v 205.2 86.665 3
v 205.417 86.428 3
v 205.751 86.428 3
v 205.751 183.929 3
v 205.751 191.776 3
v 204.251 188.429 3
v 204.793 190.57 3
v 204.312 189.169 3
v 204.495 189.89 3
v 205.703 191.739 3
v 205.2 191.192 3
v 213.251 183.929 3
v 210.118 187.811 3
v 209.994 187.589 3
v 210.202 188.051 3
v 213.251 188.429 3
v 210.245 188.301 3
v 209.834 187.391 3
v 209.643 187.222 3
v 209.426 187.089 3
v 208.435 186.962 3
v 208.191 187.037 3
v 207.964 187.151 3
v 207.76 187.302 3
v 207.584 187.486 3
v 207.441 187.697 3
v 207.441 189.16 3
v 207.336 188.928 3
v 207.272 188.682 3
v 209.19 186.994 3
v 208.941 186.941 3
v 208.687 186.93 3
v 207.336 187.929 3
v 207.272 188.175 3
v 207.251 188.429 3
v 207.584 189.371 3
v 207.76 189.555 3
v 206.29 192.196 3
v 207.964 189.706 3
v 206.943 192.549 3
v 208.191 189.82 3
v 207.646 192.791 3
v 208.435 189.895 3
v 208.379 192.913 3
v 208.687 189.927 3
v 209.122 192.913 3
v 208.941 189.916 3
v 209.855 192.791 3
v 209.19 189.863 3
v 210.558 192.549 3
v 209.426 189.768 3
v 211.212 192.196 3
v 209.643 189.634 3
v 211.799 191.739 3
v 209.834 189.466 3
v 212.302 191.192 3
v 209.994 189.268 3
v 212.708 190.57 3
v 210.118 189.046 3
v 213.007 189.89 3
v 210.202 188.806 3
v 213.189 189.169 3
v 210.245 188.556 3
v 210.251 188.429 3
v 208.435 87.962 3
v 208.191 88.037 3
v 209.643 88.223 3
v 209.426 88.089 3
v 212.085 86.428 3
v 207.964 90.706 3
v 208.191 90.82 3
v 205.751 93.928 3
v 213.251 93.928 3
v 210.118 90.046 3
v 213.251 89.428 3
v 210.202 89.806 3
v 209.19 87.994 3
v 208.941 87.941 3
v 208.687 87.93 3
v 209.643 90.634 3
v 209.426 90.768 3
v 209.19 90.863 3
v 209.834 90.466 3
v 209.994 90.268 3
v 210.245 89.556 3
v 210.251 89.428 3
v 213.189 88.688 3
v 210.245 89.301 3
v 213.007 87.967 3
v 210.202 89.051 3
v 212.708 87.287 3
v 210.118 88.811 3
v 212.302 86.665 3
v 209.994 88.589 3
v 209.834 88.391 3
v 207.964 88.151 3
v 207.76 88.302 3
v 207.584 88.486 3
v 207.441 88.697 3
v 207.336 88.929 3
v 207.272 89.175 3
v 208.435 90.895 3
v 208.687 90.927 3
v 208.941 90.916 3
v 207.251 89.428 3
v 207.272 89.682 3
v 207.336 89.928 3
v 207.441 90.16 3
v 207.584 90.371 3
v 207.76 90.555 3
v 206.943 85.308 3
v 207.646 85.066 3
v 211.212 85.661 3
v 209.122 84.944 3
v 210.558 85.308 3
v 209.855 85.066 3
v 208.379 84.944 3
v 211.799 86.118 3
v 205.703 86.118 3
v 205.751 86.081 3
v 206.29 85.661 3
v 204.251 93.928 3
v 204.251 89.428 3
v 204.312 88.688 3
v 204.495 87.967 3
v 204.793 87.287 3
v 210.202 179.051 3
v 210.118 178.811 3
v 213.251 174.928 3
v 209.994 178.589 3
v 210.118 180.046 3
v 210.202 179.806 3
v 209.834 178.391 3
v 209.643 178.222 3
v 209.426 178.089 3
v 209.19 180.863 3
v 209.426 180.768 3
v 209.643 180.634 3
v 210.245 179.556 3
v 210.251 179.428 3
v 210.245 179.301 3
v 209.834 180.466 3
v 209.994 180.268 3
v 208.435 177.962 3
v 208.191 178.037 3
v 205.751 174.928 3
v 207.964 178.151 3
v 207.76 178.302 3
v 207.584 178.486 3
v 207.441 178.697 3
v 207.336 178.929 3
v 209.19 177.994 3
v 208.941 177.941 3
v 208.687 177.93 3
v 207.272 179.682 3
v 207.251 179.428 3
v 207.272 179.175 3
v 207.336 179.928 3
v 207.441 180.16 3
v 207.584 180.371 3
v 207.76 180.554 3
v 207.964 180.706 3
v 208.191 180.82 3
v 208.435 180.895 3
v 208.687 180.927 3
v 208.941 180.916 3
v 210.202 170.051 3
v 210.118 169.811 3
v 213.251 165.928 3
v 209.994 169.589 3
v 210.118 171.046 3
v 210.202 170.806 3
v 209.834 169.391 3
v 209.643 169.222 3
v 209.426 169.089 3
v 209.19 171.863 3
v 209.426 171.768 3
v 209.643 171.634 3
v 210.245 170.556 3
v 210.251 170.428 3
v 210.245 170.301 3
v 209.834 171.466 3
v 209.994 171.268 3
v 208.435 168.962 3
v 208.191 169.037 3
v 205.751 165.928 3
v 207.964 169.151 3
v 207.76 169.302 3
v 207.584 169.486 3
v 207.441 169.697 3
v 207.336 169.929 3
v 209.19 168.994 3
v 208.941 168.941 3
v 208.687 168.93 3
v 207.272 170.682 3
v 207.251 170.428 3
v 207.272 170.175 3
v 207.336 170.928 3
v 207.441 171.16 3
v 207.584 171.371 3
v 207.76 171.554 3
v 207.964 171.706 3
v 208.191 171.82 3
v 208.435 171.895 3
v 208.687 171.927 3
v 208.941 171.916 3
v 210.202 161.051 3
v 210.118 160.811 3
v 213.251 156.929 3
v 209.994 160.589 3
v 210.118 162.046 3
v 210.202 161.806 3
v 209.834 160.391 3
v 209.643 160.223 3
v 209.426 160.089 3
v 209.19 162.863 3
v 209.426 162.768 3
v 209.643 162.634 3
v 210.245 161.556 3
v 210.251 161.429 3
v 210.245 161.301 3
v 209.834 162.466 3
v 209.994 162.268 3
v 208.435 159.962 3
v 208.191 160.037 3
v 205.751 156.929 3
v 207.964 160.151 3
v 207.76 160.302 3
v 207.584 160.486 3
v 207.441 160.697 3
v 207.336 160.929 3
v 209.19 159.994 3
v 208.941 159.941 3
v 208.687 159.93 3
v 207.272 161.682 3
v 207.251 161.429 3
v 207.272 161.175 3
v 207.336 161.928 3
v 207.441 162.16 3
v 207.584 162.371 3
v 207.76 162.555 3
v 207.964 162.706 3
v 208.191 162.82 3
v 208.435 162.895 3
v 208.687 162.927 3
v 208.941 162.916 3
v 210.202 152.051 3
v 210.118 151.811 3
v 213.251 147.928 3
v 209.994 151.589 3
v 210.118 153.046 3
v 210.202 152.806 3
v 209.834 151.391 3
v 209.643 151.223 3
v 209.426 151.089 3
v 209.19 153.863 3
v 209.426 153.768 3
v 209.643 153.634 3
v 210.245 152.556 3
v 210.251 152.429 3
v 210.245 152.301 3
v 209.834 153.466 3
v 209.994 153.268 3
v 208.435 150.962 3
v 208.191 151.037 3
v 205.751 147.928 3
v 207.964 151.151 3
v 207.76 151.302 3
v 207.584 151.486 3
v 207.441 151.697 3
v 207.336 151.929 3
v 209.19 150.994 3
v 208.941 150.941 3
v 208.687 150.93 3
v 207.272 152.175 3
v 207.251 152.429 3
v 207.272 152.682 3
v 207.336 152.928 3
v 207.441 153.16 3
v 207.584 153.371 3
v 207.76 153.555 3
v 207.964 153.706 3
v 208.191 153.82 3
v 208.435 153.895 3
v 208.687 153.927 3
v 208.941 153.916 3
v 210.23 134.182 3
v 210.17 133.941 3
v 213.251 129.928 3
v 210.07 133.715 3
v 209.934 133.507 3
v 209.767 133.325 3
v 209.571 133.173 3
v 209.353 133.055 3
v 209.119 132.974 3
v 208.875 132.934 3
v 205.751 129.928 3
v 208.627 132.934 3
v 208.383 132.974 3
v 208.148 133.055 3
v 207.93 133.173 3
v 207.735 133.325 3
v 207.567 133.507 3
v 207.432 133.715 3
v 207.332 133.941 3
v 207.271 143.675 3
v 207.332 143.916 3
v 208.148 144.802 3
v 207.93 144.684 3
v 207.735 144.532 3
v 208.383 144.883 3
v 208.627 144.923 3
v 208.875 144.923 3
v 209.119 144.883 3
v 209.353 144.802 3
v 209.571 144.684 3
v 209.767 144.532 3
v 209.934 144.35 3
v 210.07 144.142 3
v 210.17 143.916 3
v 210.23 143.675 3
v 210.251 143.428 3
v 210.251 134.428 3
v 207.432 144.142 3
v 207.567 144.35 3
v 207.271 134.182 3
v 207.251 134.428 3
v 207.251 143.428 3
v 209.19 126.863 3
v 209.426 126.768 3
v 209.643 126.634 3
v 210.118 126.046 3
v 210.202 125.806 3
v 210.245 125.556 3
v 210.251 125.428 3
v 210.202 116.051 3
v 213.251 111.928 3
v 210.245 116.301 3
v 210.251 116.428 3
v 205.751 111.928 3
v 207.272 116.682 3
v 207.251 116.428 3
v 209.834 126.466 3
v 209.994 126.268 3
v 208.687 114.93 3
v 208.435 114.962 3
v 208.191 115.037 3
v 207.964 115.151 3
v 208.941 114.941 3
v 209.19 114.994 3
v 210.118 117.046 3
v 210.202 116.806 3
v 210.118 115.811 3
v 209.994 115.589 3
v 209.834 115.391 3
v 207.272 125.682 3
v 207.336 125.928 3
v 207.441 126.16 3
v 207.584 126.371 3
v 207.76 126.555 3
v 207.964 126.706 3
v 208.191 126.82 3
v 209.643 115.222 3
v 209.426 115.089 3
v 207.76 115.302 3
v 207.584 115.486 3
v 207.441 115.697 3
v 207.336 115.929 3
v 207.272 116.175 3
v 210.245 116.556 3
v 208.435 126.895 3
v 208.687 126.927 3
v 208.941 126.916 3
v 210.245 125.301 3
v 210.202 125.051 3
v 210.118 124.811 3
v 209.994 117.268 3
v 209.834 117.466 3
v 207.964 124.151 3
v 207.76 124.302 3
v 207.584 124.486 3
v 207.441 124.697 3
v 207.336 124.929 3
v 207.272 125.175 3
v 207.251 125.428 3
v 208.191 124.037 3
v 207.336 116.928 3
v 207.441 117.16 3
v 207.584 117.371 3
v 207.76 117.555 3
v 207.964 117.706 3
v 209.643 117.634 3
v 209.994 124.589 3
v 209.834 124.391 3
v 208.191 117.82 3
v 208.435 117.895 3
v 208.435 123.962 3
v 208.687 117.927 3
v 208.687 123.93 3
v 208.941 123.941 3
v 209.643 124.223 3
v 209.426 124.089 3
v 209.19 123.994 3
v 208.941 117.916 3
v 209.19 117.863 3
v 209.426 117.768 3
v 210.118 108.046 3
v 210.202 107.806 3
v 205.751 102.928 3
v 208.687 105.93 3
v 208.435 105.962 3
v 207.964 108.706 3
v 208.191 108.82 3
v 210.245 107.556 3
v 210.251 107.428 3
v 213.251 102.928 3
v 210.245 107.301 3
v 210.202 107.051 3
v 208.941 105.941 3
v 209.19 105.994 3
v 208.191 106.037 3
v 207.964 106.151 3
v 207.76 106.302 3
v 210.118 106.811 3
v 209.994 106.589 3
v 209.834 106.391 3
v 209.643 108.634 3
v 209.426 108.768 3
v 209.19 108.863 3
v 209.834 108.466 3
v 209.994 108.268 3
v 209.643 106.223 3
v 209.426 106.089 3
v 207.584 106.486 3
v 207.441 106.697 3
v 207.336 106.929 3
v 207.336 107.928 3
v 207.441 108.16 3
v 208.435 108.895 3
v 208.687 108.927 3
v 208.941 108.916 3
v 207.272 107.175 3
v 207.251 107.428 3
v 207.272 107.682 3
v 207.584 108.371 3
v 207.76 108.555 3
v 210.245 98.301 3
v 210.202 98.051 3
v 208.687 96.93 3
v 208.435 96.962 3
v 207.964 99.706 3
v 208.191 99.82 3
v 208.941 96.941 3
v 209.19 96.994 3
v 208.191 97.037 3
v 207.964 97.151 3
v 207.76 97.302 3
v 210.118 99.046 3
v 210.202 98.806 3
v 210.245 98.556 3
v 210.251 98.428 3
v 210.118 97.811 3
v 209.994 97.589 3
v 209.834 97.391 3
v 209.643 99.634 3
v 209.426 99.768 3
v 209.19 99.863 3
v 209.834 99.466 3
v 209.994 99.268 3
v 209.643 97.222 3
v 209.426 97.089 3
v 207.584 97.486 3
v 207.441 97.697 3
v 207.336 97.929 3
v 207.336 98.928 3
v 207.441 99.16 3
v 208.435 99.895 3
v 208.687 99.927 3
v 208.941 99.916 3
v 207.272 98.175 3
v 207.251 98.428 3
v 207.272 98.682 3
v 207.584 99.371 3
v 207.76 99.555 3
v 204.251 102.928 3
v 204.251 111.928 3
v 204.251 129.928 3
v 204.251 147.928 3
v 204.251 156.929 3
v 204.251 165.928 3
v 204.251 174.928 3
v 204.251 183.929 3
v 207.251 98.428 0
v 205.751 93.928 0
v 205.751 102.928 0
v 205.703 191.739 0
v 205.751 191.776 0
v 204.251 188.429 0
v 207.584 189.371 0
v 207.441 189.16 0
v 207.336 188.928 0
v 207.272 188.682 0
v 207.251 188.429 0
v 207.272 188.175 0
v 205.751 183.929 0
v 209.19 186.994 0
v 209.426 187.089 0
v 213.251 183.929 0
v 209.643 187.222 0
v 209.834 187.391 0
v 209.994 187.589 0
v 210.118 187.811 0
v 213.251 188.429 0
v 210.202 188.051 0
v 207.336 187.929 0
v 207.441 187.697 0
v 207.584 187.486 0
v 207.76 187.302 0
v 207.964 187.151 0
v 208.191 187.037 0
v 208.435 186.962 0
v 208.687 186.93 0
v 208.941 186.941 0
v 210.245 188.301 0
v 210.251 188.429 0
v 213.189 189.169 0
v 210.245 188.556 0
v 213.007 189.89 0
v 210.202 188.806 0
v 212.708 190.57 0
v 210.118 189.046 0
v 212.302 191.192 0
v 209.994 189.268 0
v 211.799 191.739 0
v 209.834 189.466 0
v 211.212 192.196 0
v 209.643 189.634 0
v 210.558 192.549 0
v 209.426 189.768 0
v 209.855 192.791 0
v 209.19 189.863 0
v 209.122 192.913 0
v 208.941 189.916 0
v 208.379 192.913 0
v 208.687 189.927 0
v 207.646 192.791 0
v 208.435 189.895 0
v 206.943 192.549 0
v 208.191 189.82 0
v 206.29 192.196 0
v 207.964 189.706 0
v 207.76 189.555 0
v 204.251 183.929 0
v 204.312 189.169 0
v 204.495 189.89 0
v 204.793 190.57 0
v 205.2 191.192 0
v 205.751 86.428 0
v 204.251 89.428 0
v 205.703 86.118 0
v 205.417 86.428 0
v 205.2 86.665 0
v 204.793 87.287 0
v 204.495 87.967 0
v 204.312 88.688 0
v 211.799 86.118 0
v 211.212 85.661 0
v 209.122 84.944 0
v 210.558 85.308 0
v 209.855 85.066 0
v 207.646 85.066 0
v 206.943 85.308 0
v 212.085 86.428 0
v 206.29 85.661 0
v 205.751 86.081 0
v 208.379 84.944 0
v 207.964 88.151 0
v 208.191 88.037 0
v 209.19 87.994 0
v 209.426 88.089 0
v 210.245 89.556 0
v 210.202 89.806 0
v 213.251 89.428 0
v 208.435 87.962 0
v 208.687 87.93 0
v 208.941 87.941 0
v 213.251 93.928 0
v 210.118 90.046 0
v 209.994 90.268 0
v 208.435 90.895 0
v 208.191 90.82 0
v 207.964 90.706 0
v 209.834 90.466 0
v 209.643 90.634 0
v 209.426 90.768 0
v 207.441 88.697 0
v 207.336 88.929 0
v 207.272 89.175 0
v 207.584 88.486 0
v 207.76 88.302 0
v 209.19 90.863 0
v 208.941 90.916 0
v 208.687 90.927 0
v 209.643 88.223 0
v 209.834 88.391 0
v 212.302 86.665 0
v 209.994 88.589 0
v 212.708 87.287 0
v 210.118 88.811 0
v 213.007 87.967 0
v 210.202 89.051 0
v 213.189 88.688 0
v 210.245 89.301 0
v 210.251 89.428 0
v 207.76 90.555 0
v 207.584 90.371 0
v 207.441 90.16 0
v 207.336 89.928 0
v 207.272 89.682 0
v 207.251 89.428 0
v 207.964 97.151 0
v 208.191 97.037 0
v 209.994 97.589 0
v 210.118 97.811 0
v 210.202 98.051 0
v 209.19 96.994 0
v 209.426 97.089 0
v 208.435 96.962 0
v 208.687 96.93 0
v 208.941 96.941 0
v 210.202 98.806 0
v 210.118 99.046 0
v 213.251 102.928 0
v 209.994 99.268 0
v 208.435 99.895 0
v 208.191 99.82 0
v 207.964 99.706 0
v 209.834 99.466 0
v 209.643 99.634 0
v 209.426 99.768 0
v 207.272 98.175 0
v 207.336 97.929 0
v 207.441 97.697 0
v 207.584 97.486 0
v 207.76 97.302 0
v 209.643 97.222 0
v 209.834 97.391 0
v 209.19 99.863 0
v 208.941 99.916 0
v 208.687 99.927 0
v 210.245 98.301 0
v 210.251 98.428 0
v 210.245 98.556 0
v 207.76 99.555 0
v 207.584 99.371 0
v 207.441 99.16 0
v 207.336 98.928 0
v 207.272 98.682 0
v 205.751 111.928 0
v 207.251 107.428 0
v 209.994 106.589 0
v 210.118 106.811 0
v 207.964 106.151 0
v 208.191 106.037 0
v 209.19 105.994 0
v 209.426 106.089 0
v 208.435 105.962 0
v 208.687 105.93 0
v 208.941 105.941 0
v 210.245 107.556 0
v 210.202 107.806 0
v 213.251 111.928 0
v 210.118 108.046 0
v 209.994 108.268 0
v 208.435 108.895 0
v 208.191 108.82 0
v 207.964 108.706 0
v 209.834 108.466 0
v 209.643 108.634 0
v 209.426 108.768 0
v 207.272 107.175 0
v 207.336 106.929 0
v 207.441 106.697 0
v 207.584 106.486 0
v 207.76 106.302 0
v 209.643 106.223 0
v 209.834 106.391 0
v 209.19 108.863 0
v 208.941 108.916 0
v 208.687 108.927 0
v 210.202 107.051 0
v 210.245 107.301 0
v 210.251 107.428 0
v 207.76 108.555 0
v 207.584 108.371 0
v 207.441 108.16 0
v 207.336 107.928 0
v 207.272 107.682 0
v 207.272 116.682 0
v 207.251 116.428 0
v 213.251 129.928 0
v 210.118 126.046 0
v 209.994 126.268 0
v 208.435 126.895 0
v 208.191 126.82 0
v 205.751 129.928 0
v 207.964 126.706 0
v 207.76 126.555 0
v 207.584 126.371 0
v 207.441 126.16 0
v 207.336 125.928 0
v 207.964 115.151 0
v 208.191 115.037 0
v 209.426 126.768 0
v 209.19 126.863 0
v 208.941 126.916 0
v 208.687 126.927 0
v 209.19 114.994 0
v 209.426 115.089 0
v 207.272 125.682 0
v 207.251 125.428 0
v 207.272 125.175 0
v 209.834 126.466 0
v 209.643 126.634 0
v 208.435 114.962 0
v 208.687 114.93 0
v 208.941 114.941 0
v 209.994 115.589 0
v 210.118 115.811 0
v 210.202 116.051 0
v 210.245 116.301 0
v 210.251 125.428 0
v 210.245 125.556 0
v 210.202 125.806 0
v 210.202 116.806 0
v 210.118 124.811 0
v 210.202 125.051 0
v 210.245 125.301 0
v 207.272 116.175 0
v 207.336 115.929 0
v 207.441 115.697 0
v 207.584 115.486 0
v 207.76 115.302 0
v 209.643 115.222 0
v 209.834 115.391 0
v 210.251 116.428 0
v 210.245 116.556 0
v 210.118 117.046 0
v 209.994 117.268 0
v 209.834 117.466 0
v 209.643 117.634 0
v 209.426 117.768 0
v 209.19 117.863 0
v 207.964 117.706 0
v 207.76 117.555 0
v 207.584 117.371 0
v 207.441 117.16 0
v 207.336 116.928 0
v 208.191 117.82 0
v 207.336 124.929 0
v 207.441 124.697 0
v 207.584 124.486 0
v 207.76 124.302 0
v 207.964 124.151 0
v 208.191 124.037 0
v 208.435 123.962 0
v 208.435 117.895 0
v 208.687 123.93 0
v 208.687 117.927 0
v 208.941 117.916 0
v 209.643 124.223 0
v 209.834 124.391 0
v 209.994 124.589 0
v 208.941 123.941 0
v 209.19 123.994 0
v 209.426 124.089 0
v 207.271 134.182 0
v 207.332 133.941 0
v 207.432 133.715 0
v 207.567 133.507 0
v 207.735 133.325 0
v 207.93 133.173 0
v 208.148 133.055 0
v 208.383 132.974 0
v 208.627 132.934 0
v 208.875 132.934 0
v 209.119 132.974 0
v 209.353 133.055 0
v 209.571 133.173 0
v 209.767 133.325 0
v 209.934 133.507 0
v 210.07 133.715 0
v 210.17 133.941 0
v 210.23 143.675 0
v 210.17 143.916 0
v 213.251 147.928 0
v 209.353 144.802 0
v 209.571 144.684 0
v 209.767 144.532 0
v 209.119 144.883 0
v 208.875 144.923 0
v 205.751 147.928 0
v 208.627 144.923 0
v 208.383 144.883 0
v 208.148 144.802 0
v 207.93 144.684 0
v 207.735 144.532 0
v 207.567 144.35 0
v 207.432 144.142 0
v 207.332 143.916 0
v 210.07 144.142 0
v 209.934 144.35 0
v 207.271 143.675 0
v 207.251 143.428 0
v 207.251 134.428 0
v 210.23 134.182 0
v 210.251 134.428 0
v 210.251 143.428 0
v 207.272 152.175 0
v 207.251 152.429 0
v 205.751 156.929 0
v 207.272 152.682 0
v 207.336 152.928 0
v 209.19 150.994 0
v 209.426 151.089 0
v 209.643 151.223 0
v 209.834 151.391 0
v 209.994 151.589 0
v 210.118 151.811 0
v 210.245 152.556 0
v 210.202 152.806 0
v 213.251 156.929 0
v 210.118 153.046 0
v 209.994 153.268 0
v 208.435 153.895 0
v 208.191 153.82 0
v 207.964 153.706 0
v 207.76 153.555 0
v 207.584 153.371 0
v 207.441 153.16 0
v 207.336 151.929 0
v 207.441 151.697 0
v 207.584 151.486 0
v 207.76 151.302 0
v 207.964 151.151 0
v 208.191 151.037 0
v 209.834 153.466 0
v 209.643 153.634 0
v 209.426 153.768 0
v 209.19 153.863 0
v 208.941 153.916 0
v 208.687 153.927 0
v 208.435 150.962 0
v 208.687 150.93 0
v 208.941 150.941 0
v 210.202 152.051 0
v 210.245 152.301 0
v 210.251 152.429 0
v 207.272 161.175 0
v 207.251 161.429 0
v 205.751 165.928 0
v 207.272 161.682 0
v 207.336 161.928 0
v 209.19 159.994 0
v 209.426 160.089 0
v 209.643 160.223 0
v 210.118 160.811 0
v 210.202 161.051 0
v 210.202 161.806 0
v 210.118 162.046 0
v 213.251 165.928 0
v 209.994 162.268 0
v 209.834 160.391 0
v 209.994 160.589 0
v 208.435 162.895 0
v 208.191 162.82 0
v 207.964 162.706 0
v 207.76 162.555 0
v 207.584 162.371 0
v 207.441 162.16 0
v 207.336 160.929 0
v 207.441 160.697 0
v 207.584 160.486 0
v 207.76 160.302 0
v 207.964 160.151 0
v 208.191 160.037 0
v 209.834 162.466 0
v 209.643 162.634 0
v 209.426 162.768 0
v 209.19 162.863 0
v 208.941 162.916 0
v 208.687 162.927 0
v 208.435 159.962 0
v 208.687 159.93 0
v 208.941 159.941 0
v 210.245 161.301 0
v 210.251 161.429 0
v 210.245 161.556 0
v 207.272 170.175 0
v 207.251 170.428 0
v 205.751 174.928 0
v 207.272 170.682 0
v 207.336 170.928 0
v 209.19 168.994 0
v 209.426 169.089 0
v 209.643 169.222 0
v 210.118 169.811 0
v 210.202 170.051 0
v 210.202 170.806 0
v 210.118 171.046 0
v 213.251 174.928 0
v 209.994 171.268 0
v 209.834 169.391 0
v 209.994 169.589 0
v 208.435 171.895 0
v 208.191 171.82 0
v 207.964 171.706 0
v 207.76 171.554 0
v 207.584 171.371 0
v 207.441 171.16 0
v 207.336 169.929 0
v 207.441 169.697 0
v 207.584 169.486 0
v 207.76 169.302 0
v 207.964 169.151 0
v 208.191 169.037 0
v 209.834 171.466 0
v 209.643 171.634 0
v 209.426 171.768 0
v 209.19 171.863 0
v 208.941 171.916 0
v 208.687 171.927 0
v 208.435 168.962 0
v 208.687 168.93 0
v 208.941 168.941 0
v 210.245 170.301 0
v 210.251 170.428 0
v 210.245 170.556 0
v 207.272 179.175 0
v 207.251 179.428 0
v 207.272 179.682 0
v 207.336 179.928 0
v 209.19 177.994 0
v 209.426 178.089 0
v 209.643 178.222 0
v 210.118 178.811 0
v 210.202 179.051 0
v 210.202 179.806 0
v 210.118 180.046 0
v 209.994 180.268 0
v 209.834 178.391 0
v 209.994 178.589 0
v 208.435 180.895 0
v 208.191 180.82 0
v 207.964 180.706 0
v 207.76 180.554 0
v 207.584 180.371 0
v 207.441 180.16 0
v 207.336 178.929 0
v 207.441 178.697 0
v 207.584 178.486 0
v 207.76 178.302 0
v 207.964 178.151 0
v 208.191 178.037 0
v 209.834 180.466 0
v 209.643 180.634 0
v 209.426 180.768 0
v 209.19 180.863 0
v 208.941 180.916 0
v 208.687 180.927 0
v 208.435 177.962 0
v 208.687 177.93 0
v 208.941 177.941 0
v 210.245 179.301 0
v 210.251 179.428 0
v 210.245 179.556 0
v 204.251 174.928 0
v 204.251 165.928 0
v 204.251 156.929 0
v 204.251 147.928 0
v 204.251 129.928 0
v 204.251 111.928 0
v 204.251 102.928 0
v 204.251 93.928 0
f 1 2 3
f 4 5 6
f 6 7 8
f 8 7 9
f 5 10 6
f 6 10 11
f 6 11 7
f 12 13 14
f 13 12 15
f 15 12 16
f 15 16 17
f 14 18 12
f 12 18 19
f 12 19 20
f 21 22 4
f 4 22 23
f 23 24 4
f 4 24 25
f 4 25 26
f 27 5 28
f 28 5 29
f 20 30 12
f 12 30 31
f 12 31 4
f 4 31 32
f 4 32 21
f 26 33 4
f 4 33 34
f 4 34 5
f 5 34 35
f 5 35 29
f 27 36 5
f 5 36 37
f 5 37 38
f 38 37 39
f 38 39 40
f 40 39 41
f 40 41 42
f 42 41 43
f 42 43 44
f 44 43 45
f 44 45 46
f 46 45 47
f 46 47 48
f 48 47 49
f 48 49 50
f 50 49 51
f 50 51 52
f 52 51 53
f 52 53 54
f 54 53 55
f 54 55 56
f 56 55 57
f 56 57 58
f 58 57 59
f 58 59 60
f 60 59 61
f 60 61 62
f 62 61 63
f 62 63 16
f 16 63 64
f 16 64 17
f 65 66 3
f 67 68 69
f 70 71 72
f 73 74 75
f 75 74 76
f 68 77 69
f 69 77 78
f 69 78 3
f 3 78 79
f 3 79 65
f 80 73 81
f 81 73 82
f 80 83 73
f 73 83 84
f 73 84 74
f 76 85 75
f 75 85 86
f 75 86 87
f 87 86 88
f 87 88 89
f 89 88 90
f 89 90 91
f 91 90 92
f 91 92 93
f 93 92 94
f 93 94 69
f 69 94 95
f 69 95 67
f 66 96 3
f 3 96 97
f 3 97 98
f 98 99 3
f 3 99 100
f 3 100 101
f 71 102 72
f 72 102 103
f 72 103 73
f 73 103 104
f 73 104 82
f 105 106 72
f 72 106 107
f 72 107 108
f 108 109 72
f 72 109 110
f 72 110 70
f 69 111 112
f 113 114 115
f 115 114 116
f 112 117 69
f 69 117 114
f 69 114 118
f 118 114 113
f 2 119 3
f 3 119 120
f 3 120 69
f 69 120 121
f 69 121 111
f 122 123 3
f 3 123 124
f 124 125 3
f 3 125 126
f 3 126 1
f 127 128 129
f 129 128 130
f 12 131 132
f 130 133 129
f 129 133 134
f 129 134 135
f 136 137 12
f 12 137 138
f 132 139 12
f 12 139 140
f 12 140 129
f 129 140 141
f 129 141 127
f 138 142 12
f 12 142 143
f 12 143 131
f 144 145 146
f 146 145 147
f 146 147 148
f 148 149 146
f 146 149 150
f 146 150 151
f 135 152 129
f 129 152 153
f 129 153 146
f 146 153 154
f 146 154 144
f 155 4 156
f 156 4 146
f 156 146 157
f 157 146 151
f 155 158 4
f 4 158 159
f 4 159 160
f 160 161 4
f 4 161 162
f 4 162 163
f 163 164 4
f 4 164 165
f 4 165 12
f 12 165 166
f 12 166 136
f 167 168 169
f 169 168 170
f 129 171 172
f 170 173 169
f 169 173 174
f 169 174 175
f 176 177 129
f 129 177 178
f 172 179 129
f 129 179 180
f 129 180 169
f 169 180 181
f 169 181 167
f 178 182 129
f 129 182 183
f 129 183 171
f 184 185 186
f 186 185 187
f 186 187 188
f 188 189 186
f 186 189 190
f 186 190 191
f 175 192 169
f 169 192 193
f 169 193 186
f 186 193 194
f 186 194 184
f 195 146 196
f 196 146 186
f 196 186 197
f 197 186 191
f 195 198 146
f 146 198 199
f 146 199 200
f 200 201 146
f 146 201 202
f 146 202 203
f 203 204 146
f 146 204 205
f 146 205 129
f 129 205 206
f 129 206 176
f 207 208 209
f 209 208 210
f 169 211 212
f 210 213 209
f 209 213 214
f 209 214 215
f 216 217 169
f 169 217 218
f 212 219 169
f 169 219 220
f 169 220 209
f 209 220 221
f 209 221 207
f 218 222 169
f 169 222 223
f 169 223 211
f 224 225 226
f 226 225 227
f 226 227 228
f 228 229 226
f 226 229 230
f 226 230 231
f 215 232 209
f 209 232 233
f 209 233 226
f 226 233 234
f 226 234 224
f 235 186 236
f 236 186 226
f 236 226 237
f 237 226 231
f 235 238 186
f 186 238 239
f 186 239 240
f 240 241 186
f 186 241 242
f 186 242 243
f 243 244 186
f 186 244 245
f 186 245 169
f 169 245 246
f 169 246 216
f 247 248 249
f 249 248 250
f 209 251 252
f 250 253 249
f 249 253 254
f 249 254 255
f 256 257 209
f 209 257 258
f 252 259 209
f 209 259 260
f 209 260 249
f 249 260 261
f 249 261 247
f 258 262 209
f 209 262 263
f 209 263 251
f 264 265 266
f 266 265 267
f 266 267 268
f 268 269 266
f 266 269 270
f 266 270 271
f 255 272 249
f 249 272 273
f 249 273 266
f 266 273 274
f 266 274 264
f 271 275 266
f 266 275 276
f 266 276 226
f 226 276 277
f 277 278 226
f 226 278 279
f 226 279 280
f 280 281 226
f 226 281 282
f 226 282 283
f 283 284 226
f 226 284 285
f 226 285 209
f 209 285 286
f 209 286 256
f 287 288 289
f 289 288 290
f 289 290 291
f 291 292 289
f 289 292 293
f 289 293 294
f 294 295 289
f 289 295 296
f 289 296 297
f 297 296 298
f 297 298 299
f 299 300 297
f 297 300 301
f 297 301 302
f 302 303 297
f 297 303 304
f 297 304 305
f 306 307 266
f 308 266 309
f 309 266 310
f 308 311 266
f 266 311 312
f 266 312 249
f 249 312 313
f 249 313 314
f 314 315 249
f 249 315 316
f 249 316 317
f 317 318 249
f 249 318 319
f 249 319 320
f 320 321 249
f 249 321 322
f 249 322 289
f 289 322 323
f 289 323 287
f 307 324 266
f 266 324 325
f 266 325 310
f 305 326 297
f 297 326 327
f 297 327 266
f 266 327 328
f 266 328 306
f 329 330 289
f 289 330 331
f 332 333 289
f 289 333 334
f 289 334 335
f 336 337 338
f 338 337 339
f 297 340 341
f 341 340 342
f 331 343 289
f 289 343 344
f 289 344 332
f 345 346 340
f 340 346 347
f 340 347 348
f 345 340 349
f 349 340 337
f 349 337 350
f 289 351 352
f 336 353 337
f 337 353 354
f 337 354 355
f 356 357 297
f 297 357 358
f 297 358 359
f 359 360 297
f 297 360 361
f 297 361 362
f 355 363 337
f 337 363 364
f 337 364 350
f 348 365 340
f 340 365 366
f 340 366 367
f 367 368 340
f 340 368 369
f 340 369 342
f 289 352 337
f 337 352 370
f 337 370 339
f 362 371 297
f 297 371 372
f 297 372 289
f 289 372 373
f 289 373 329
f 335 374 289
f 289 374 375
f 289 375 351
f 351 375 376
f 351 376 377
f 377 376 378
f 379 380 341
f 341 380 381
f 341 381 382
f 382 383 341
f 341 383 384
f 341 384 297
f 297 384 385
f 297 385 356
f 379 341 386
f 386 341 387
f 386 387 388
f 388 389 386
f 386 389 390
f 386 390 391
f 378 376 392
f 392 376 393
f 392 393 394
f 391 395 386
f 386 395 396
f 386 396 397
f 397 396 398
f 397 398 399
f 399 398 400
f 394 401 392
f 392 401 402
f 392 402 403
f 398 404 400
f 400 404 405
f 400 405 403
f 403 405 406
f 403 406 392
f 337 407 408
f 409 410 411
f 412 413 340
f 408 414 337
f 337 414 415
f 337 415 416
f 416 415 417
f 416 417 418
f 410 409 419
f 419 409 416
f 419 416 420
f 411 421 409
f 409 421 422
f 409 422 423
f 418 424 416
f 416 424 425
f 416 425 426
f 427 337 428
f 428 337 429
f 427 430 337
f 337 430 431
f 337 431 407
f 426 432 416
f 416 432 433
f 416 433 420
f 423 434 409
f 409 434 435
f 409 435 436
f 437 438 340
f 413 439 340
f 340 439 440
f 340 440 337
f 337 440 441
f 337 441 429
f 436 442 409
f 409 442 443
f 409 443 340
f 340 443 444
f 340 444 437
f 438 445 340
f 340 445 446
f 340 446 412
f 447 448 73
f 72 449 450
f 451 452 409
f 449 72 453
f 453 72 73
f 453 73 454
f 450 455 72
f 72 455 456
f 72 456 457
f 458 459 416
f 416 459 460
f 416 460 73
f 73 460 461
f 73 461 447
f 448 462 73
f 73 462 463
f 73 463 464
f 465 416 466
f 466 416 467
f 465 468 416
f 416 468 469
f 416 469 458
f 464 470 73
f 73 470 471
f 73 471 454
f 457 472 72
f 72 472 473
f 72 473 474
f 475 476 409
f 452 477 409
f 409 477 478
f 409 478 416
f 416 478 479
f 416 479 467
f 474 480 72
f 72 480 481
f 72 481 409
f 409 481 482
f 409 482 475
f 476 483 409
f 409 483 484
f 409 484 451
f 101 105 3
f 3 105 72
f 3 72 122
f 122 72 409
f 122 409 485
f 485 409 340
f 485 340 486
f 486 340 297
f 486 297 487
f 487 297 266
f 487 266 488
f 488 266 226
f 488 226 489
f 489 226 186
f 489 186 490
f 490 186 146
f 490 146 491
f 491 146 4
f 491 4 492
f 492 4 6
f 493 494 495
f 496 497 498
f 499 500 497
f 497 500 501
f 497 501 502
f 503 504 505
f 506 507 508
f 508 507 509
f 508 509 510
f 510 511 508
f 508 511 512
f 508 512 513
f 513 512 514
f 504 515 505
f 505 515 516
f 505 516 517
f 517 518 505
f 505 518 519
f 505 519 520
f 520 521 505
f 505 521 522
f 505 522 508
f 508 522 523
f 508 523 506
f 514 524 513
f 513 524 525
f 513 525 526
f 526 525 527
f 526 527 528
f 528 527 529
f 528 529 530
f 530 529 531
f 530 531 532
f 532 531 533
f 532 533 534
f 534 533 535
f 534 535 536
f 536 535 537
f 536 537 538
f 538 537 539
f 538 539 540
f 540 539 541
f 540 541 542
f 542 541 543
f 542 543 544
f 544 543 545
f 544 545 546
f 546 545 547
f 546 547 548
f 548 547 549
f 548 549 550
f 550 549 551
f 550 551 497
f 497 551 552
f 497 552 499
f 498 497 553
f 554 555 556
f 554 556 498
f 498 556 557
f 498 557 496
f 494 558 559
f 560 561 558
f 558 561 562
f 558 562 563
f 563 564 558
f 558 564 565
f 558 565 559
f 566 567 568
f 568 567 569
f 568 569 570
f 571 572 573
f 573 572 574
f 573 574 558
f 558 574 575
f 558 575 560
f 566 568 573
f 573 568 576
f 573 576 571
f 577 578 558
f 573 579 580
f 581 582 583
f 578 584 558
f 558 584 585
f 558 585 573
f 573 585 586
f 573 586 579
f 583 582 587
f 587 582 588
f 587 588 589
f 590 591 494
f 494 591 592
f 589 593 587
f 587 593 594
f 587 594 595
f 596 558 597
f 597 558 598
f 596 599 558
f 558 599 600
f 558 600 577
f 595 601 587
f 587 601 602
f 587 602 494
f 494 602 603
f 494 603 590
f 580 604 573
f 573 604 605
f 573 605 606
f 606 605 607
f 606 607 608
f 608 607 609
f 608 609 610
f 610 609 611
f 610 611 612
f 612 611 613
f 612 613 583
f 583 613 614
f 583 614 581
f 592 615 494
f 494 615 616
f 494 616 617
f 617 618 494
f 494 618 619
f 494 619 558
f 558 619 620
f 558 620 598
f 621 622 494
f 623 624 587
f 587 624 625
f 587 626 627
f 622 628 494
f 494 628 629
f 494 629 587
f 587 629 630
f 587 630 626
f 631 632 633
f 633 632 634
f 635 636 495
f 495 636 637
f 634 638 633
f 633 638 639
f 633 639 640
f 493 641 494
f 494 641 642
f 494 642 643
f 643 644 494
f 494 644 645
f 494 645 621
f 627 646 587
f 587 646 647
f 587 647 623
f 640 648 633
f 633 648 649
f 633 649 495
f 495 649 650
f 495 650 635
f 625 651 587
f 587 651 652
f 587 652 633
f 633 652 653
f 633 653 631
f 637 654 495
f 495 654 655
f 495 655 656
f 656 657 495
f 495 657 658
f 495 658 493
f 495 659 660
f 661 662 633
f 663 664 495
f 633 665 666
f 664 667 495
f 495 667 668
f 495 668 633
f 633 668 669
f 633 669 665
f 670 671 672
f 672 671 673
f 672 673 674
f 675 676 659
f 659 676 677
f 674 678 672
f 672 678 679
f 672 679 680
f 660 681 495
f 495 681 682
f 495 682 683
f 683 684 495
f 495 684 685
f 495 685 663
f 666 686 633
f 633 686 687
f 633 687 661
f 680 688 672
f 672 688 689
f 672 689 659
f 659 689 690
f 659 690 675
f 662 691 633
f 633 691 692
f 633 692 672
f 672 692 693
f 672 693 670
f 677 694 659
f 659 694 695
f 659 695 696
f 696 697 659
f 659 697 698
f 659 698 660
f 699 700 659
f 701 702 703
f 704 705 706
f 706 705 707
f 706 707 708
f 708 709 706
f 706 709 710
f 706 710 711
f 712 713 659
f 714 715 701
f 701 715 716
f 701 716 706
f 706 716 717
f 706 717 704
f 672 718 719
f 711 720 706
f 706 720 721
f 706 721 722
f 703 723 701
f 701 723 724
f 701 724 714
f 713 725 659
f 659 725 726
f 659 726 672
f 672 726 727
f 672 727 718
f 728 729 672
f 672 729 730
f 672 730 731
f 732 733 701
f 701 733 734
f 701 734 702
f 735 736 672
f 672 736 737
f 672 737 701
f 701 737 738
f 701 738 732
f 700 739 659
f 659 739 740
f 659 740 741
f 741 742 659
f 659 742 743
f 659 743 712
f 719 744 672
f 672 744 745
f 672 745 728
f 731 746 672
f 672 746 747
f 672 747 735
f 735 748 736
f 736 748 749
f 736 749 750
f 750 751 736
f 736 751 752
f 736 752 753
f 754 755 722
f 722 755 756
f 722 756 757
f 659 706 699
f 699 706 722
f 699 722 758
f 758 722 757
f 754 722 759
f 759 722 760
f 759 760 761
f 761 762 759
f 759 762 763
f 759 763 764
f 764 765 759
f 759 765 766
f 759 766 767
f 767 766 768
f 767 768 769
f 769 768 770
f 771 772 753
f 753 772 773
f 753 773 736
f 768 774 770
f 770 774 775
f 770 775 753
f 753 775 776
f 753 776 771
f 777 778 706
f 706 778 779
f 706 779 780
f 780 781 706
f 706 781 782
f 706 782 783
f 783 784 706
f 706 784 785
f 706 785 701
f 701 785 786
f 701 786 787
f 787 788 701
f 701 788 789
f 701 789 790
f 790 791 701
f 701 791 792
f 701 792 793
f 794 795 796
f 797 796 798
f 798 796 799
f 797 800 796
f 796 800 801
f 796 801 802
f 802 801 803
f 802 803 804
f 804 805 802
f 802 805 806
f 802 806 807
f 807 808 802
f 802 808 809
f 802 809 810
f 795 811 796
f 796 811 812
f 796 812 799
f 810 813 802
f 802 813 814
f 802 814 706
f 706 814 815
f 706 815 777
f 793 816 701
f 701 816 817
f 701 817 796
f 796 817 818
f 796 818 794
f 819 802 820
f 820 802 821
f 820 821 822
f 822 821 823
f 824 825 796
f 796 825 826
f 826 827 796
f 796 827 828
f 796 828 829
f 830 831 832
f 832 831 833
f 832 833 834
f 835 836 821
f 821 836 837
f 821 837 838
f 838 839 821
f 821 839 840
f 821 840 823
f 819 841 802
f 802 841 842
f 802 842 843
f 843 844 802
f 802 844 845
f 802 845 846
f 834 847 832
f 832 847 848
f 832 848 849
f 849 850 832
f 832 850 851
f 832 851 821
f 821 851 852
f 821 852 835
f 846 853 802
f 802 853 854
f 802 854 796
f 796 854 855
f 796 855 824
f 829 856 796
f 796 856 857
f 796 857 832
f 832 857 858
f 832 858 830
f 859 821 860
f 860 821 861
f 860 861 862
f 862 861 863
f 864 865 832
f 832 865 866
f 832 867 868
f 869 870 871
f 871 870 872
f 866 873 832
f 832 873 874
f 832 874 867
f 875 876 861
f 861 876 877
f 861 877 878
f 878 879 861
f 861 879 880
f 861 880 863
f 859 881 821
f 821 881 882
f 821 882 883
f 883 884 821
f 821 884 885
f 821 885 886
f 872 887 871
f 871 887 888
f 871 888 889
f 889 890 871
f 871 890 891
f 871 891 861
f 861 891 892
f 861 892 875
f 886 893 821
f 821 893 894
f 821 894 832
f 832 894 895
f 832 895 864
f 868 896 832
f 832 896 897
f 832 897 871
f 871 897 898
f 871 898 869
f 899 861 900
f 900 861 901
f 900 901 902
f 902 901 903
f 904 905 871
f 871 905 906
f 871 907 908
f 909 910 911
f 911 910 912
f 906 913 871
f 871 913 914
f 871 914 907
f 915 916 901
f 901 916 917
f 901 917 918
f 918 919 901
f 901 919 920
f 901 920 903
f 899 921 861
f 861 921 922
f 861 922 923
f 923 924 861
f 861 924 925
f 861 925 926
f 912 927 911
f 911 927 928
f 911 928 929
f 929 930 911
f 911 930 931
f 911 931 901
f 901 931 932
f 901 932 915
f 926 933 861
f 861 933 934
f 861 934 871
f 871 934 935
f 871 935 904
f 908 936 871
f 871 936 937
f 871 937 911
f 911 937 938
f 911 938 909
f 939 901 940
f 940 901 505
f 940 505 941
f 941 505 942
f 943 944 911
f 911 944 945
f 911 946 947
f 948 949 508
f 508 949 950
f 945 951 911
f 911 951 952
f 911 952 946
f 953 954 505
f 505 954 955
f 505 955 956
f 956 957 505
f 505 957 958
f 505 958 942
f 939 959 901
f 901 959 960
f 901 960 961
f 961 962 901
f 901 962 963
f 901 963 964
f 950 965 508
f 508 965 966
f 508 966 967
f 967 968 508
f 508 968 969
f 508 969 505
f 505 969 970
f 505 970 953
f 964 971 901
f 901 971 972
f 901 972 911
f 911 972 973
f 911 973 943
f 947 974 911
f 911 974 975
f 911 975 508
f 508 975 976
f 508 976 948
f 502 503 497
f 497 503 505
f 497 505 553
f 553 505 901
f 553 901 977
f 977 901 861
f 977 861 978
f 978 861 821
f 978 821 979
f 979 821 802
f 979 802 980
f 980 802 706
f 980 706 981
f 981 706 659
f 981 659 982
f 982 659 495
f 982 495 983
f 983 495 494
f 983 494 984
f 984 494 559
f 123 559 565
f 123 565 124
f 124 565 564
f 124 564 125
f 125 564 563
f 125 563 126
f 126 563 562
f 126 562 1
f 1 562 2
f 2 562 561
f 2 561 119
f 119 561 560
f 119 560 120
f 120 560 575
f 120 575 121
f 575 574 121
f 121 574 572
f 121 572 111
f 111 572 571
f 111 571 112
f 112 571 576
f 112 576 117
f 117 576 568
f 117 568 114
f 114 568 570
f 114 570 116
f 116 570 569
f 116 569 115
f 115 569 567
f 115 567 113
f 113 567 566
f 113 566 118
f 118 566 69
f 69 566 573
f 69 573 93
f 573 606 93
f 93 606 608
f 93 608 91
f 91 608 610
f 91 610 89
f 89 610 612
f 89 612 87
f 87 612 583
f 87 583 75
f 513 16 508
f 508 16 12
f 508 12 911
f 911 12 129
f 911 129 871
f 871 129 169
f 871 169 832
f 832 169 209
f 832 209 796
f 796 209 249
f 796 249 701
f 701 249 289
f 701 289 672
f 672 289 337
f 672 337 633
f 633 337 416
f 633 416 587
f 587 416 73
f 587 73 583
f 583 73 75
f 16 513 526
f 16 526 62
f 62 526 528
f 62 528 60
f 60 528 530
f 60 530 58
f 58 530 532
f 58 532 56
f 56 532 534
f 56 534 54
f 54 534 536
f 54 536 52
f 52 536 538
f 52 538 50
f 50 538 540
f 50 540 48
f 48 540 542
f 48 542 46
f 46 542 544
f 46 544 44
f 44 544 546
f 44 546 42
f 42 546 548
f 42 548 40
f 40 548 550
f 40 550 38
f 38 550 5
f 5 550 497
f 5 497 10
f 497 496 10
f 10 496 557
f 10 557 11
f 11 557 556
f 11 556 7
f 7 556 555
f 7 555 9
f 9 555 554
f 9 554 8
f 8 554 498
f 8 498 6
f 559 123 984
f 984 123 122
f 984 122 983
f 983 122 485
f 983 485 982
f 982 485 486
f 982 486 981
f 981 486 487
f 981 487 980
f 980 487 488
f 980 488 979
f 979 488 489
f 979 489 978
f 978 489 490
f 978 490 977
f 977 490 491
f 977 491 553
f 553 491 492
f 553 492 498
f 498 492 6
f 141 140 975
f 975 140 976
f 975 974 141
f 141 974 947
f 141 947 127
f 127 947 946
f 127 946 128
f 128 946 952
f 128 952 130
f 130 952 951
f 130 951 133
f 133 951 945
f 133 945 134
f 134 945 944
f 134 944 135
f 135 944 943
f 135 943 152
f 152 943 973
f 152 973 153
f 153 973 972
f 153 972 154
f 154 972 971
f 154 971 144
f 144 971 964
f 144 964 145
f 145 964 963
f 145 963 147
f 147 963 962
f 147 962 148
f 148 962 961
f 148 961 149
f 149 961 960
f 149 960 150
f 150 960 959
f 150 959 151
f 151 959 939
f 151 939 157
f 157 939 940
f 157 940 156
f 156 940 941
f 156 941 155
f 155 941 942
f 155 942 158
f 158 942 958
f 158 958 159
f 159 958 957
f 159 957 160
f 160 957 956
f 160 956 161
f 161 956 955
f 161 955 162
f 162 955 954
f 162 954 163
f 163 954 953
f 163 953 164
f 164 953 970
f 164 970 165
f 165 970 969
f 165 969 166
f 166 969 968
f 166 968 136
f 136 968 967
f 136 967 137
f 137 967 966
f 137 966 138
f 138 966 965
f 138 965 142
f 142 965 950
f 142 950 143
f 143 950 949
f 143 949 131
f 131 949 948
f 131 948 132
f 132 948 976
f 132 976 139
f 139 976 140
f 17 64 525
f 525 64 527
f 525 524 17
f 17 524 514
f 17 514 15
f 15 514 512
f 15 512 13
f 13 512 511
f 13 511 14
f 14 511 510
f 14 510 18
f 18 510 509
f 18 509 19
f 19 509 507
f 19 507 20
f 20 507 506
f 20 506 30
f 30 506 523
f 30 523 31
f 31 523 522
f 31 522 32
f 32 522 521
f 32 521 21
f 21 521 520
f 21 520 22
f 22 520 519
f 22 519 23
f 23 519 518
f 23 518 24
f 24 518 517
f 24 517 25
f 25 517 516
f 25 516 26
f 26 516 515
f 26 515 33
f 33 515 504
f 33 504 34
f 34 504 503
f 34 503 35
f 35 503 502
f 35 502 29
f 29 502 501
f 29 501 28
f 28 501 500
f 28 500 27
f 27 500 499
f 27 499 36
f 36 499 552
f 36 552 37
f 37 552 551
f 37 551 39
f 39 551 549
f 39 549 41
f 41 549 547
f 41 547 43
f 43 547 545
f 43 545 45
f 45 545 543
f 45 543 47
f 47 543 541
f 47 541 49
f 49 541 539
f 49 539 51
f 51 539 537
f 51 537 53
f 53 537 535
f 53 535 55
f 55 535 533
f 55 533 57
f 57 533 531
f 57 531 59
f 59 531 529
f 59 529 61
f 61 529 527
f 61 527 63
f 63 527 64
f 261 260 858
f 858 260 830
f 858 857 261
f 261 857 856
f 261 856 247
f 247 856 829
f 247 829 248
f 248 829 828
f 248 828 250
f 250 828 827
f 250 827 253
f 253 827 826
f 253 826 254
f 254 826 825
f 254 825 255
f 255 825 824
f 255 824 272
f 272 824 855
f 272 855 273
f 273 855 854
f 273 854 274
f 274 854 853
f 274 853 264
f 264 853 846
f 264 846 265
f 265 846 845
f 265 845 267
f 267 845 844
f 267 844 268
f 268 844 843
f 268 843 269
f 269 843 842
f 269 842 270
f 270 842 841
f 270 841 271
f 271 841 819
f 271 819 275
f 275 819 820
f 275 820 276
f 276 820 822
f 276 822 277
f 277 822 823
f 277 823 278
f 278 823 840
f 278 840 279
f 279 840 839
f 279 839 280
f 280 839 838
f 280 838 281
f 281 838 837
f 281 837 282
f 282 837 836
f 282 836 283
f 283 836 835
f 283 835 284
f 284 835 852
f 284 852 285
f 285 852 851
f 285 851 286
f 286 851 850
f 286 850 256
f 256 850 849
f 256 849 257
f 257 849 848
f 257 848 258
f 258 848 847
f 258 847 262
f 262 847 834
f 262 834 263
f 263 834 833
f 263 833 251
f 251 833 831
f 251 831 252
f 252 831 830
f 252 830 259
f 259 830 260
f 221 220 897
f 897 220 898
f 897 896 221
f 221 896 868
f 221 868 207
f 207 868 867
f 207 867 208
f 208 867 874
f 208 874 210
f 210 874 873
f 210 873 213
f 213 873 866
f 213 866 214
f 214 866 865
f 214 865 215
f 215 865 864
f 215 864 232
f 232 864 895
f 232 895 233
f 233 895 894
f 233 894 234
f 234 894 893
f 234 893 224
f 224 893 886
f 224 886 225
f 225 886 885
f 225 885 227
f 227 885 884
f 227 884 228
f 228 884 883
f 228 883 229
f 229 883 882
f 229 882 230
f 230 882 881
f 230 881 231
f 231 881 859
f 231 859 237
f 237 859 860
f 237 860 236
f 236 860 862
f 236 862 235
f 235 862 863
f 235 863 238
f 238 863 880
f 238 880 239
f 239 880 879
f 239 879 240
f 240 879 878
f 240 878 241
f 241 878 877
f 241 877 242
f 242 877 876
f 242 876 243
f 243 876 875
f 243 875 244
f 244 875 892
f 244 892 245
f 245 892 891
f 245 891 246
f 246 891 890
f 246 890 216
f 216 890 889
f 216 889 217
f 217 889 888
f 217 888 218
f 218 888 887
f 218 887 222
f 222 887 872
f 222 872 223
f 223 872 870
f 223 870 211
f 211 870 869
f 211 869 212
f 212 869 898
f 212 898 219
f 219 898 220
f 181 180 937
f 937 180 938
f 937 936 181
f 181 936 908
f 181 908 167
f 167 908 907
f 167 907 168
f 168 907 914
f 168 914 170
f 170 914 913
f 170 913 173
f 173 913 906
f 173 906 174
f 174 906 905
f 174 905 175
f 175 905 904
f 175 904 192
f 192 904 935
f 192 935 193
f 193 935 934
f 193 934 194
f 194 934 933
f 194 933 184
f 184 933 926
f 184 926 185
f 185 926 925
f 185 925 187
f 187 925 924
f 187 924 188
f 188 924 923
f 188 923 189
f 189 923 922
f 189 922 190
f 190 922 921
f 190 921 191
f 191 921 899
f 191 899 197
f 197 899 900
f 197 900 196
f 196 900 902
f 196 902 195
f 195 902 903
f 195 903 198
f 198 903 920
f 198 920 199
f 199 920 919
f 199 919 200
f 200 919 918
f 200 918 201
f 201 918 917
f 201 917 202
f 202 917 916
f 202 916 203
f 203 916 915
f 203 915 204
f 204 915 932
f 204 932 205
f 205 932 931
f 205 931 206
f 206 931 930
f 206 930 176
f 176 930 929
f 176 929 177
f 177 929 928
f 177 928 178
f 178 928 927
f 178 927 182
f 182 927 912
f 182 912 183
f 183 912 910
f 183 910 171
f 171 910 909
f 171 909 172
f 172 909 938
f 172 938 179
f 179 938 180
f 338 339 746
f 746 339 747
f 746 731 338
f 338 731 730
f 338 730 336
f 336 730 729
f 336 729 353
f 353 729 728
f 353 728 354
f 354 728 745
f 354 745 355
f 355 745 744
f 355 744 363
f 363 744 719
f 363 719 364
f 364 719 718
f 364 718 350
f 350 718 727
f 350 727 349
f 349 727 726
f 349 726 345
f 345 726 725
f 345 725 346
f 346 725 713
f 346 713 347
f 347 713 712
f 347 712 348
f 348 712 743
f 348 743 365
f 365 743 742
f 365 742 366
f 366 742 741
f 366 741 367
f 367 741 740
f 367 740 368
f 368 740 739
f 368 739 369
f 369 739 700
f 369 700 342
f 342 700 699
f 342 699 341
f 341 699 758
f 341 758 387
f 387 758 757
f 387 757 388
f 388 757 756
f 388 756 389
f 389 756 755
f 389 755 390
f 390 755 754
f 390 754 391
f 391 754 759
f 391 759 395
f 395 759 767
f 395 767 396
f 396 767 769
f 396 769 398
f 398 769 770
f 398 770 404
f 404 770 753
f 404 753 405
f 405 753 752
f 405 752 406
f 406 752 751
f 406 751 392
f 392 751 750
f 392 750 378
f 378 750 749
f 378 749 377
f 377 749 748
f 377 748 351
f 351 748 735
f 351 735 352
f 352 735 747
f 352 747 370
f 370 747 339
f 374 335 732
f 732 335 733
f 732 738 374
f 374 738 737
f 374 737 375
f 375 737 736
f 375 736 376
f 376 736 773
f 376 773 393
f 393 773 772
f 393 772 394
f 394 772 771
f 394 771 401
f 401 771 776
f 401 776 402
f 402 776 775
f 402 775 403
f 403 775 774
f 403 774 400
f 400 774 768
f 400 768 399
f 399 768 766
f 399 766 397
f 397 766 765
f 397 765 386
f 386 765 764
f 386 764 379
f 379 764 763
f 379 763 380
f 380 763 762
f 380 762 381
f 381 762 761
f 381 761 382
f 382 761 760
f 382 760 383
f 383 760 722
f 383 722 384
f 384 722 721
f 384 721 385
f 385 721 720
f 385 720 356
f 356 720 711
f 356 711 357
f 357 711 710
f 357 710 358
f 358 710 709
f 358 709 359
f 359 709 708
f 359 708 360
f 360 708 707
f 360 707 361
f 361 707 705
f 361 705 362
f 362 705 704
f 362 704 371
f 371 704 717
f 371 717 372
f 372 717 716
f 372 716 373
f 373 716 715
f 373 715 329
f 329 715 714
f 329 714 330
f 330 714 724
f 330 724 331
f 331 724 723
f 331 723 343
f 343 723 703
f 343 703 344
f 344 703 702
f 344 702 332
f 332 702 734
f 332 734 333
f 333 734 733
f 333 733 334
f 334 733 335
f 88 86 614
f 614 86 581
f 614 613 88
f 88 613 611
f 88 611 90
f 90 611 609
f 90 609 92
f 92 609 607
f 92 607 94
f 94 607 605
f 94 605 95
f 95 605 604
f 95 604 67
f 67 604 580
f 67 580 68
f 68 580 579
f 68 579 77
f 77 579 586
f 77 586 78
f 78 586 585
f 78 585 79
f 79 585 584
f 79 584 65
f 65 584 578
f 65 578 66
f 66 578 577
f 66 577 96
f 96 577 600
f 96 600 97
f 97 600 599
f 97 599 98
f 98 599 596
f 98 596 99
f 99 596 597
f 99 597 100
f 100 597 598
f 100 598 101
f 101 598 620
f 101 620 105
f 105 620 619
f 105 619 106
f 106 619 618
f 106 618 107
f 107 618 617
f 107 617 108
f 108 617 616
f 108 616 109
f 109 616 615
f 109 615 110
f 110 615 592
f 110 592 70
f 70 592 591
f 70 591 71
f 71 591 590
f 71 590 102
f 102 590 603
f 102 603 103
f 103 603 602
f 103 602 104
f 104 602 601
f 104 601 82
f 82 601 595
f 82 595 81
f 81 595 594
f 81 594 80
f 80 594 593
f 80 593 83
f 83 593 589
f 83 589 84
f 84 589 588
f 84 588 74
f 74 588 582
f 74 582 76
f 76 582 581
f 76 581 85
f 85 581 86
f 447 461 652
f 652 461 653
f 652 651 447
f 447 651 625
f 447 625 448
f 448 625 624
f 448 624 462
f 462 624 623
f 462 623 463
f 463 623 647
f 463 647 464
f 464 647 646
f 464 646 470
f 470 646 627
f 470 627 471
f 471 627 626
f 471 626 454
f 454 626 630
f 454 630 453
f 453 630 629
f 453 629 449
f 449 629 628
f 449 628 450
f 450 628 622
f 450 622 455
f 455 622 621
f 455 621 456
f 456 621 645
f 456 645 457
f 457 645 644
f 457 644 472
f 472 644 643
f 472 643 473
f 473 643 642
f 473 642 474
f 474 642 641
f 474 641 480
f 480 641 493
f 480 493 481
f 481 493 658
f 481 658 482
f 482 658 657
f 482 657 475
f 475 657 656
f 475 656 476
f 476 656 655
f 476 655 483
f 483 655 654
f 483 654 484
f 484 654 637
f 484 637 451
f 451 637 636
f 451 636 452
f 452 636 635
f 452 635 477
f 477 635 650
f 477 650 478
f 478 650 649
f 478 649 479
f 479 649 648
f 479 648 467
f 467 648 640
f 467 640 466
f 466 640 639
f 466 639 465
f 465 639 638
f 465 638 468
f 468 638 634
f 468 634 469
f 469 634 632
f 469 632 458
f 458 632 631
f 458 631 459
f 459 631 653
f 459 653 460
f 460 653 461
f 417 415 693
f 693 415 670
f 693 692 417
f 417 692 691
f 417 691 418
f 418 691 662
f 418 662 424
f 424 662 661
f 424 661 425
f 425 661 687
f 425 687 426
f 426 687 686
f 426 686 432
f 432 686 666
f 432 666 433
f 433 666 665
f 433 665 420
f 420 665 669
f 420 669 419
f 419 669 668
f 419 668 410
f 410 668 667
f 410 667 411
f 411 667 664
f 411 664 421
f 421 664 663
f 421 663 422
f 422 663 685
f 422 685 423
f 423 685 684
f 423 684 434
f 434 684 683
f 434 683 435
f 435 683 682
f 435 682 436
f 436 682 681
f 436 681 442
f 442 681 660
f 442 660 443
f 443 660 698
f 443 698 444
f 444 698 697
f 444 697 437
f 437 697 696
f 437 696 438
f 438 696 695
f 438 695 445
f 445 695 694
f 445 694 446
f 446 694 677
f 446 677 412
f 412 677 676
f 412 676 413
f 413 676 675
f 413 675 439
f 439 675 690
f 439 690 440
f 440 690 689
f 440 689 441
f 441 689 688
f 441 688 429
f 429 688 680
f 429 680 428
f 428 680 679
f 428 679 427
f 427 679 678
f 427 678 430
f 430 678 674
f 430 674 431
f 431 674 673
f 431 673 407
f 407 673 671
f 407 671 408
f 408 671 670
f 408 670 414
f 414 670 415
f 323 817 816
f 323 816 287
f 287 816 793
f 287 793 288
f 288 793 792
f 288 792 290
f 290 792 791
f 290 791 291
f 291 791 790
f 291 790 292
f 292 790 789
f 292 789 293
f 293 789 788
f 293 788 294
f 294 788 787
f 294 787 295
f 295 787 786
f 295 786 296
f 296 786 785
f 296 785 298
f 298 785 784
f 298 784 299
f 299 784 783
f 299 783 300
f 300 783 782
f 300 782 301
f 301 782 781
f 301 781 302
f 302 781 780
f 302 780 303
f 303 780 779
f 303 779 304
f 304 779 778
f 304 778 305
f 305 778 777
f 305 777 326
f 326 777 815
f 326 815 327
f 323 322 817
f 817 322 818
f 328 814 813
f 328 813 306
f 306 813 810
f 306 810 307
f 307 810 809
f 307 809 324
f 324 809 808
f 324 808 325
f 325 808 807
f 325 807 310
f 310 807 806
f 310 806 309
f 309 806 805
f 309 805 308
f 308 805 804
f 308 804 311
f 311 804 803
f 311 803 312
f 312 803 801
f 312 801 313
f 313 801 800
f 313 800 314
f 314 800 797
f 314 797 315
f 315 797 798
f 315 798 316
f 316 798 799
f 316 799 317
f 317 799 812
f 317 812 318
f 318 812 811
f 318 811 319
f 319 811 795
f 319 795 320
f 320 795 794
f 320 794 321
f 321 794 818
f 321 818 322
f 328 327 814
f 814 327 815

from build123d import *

# Parameters (mm, degrees)
MODEL_R                 = 1.5
SALIENTE_EXTRUIR1_DEPTH = 3


with BuildPart() as part:
    # Model → Saliente-Extruir1 (new body)
    with BuildSketch(Plane.XY):
        with BuildLine():
            Line((213.25077615, 89.428489513), (213.25077615, 188.428489513))
            ThreePointArc((213.25077615, 188.428489513), (208.75077615, 192.928489513), (204.25077615, 188.428489513))
            Line((204.25077615, 188.428489513), (204.25077615, 89.428489513))
            ThreePointArc((204.25077615, 89.428489513), (208.75077615, 84.928489513), (213.25077615, 89.428489513))
        make_face()
        with Locations((208.75077615, 179.428489513)):
            Circle(MODEL_R, mode=Mode.SUBTRACT)
        with Locations((208.75077615, 188.428489513)):
            Circle(MODEL_R, mode=Mode.SUBTRACT)
        with Locations((208.75077615, 152.428489513)):
            Circle(MODEL_R, mode=Mode.SUBTRACT)
        with Locations((208.75077615, 161.428489513)):
            Circle(MODEL_R, mode=Mode.SUBTRACT)
        with Locations((208.75077615, 170.428489513)):
            Circle(MODEL_R, mode=Mode.SUBTRACT)
        with Locations((208.75077615, 116.428489513)):
            Circle(MODEL_R, mode=Mode.SUBTRACT)
        with Locations((208.75077615, 125.428489513)):
            Circle(MODEL_R, mode=Mode.SUBTRACT)
        with Locations((208.75077615, 89.428489513)):
            Circle(MODEL_R, mode=Mode.SUBTRACT)
        with Locations((208.75077615, 98.428489513)):
            Circle(MODEL_R, mode=Mode.SUBTRACT)
        with Locations((208.75077615, 107.428489513)):
            Circle(MODEL_R, mode=Mode.SUBTRACT)
        with BuildLine():
            Line((207.25077615, 134.428489513), (207.25077615, 143.428489513))
            ThreePointArc((207.25077615, 143.428489513), (208.75077615, 144.928489513), (210.25077615, 143.428489513))
            Line((210.25077615, 143.428489513), (210.25077615, 134.428489513))
            ThreePointArc((210.25077615, 134.428489513), (208.75077615, 132.928489513), (207.25077615, 134.428489513))
        make_face(mode=Mode.SUBTRACT)
    extrude(amount=SALIENTE_EXTRUIR1_DEPTH)


solid = part.part
